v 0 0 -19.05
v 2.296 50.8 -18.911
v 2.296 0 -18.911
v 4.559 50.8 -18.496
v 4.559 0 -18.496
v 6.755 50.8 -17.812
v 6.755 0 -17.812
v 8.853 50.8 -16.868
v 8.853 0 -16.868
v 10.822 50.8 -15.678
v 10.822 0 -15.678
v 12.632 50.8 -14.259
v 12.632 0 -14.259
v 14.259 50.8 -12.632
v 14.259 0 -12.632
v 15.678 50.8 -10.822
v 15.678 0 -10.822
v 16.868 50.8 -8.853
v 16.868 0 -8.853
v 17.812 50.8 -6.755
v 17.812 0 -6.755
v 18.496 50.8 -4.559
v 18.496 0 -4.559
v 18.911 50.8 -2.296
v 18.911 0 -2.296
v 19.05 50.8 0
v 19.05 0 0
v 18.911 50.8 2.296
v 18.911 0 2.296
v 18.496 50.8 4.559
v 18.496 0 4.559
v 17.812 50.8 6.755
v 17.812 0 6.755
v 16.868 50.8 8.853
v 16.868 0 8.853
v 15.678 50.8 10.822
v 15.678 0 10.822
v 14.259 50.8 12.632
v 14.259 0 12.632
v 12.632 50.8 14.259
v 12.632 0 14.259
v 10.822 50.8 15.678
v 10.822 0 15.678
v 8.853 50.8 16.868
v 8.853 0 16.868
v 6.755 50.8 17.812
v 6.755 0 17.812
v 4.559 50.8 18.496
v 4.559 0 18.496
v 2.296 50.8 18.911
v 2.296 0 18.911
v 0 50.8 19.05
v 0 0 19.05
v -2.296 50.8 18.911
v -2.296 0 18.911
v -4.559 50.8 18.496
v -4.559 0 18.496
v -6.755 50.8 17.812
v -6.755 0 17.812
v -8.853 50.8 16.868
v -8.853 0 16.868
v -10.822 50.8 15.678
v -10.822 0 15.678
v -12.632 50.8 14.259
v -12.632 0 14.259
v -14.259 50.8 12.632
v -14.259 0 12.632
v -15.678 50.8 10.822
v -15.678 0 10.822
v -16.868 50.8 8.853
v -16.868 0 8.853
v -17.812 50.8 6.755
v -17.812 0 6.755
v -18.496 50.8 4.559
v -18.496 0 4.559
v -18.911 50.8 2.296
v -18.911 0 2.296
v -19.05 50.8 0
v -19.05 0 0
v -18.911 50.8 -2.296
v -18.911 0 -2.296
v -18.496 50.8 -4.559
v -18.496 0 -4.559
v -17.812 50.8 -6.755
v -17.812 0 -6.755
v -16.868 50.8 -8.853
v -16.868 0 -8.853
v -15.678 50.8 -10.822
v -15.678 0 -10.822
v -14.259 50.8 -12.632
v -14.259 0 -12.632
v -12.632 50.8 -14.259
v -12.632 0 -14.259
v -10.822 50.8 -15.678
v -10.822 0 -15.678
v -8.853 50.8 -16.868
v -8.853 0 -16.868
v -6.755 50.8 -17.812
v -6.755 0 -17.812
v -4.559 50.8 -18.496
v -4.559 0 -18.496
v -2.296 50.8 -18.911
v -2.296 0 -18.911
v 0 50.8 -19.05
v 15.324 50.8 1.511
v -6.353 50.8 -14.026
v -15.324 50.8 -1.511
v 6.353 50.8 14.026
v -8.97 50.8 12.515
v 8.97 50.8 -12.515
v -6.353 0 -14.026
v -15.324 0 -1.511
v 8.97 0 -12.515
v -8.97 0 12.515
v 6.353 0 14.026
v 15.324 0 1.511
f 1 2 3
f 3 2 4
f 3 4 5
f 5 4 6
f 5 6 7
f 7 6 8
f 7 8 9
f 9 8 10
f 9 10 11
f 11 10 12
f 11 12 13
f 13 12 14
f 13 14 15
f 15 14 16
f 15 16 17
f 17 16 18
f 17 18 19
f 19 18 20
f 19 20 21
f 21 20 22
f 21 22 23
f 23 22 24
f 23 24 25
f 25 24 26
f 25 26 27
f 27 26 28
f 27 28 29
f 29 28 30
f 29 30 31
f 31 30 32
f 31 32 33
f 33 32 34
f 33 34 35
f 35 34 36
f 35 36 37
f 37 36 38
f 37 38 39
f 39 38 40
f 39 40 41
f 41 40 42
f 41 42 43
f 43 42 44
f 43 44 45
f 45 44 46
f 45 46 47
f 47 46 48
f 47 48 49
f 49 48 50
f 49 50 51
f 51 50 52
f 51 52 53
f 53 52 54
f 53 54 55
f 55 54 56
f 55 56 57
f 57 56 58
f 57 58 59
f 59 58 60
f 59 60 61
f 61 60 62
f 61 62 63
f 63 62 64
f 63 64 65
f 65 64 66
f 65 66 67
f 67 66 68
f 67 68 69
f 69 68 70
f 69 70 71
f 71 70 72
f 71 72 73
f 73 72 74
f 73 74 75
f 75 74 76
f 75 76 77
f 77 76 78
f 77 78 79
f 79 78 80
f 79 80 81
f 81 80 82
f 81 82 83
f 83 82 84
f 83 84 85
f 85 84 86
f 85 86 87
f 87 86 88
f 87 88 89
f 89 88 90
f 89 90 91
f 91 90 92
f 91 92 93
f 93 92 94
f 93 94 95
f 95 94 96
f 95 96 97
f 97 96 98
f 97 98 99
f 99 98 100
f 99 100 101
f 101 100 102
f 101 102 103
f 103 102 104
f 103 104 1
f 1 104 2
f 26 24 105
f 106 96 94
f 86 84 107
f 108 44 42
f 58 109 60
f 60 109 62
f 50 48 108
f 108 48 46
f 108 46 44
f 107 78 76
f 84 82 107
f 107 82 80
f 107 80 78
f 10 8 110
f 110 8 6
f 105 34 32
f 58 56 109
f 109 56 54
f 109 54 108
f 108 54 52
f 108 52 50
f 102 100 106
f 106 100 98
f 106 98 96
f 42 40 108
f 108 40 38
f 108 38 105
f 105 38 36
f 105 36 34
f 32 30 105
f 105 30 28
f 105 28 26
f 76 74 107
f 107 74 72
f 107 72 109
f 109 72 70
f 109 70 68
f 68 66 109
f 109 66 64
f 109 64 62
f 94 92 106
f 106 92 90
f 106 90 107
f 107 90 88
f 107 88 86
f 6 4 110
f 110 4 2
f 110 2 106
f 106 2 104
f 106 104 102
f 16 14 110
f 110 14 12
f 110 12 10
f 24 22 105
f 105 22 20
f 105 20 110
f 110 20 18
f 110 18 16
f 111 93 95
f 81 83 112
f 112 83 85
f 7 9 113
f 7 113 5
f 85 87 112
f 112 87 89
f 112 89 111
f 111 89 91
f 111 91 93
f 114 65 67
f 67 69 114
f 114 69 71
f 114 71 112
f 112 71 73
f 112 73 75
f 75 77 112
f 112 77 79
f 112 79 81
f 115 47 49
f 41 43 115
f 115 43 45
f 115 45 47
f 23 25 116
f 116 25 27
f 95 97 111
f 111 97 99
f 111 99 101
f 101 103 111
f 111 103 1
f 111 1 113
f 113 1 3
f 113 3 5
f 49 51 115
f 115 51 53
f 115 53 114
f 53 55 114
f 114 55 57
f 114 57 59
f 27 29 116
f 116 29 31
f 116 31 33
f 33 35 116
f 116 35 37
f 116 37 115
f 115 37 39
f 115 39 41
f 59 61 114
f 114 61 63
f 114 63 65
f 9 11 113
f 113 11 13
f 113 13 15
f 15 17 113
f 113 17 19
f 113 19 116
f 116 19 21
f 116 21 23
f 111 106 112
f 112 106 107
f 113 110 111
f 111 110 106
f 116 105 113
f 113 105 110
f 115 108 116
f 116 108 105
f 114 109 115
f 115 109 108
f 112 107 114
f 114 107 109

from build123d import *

# Parameters (mm, degrees)
SKETCH1_R           = 19.05
BOSS_EXTRUDE1_DEPTH = 50.8
CUT_EXTRUDE1_DEPTH  = 50.8


with BuildPart() as part:
    # Sketch1 → Boss-Extrude1 (new body)
    with BuildSketch(Plane(origin=(0, 0, 0), x_dir=(1, 0, 0), z_dir=(0, 1, 0))):
        Circle(SKETCH1_R)
    extrude(amount=BOSS_EXTRUDE1_DEPTH)

    # Sketch2 → Cut-Extrude1 (cut)
    with BuildSketch(Plane.XZ):
        Polygon((-15.323636661, -1.510781079), (-6.353443536, -14.026049167), (8.970193125, -12.515268087), (15.323636661, 1.510781079), (6.353443536, 14.026049167), (-8.970193125, 12.515268087), align=None)
    extrude(amount=-CUT_EXTRUDE1_DEPTH, mode=Mode.SUBTRACT)


solid = part.part
